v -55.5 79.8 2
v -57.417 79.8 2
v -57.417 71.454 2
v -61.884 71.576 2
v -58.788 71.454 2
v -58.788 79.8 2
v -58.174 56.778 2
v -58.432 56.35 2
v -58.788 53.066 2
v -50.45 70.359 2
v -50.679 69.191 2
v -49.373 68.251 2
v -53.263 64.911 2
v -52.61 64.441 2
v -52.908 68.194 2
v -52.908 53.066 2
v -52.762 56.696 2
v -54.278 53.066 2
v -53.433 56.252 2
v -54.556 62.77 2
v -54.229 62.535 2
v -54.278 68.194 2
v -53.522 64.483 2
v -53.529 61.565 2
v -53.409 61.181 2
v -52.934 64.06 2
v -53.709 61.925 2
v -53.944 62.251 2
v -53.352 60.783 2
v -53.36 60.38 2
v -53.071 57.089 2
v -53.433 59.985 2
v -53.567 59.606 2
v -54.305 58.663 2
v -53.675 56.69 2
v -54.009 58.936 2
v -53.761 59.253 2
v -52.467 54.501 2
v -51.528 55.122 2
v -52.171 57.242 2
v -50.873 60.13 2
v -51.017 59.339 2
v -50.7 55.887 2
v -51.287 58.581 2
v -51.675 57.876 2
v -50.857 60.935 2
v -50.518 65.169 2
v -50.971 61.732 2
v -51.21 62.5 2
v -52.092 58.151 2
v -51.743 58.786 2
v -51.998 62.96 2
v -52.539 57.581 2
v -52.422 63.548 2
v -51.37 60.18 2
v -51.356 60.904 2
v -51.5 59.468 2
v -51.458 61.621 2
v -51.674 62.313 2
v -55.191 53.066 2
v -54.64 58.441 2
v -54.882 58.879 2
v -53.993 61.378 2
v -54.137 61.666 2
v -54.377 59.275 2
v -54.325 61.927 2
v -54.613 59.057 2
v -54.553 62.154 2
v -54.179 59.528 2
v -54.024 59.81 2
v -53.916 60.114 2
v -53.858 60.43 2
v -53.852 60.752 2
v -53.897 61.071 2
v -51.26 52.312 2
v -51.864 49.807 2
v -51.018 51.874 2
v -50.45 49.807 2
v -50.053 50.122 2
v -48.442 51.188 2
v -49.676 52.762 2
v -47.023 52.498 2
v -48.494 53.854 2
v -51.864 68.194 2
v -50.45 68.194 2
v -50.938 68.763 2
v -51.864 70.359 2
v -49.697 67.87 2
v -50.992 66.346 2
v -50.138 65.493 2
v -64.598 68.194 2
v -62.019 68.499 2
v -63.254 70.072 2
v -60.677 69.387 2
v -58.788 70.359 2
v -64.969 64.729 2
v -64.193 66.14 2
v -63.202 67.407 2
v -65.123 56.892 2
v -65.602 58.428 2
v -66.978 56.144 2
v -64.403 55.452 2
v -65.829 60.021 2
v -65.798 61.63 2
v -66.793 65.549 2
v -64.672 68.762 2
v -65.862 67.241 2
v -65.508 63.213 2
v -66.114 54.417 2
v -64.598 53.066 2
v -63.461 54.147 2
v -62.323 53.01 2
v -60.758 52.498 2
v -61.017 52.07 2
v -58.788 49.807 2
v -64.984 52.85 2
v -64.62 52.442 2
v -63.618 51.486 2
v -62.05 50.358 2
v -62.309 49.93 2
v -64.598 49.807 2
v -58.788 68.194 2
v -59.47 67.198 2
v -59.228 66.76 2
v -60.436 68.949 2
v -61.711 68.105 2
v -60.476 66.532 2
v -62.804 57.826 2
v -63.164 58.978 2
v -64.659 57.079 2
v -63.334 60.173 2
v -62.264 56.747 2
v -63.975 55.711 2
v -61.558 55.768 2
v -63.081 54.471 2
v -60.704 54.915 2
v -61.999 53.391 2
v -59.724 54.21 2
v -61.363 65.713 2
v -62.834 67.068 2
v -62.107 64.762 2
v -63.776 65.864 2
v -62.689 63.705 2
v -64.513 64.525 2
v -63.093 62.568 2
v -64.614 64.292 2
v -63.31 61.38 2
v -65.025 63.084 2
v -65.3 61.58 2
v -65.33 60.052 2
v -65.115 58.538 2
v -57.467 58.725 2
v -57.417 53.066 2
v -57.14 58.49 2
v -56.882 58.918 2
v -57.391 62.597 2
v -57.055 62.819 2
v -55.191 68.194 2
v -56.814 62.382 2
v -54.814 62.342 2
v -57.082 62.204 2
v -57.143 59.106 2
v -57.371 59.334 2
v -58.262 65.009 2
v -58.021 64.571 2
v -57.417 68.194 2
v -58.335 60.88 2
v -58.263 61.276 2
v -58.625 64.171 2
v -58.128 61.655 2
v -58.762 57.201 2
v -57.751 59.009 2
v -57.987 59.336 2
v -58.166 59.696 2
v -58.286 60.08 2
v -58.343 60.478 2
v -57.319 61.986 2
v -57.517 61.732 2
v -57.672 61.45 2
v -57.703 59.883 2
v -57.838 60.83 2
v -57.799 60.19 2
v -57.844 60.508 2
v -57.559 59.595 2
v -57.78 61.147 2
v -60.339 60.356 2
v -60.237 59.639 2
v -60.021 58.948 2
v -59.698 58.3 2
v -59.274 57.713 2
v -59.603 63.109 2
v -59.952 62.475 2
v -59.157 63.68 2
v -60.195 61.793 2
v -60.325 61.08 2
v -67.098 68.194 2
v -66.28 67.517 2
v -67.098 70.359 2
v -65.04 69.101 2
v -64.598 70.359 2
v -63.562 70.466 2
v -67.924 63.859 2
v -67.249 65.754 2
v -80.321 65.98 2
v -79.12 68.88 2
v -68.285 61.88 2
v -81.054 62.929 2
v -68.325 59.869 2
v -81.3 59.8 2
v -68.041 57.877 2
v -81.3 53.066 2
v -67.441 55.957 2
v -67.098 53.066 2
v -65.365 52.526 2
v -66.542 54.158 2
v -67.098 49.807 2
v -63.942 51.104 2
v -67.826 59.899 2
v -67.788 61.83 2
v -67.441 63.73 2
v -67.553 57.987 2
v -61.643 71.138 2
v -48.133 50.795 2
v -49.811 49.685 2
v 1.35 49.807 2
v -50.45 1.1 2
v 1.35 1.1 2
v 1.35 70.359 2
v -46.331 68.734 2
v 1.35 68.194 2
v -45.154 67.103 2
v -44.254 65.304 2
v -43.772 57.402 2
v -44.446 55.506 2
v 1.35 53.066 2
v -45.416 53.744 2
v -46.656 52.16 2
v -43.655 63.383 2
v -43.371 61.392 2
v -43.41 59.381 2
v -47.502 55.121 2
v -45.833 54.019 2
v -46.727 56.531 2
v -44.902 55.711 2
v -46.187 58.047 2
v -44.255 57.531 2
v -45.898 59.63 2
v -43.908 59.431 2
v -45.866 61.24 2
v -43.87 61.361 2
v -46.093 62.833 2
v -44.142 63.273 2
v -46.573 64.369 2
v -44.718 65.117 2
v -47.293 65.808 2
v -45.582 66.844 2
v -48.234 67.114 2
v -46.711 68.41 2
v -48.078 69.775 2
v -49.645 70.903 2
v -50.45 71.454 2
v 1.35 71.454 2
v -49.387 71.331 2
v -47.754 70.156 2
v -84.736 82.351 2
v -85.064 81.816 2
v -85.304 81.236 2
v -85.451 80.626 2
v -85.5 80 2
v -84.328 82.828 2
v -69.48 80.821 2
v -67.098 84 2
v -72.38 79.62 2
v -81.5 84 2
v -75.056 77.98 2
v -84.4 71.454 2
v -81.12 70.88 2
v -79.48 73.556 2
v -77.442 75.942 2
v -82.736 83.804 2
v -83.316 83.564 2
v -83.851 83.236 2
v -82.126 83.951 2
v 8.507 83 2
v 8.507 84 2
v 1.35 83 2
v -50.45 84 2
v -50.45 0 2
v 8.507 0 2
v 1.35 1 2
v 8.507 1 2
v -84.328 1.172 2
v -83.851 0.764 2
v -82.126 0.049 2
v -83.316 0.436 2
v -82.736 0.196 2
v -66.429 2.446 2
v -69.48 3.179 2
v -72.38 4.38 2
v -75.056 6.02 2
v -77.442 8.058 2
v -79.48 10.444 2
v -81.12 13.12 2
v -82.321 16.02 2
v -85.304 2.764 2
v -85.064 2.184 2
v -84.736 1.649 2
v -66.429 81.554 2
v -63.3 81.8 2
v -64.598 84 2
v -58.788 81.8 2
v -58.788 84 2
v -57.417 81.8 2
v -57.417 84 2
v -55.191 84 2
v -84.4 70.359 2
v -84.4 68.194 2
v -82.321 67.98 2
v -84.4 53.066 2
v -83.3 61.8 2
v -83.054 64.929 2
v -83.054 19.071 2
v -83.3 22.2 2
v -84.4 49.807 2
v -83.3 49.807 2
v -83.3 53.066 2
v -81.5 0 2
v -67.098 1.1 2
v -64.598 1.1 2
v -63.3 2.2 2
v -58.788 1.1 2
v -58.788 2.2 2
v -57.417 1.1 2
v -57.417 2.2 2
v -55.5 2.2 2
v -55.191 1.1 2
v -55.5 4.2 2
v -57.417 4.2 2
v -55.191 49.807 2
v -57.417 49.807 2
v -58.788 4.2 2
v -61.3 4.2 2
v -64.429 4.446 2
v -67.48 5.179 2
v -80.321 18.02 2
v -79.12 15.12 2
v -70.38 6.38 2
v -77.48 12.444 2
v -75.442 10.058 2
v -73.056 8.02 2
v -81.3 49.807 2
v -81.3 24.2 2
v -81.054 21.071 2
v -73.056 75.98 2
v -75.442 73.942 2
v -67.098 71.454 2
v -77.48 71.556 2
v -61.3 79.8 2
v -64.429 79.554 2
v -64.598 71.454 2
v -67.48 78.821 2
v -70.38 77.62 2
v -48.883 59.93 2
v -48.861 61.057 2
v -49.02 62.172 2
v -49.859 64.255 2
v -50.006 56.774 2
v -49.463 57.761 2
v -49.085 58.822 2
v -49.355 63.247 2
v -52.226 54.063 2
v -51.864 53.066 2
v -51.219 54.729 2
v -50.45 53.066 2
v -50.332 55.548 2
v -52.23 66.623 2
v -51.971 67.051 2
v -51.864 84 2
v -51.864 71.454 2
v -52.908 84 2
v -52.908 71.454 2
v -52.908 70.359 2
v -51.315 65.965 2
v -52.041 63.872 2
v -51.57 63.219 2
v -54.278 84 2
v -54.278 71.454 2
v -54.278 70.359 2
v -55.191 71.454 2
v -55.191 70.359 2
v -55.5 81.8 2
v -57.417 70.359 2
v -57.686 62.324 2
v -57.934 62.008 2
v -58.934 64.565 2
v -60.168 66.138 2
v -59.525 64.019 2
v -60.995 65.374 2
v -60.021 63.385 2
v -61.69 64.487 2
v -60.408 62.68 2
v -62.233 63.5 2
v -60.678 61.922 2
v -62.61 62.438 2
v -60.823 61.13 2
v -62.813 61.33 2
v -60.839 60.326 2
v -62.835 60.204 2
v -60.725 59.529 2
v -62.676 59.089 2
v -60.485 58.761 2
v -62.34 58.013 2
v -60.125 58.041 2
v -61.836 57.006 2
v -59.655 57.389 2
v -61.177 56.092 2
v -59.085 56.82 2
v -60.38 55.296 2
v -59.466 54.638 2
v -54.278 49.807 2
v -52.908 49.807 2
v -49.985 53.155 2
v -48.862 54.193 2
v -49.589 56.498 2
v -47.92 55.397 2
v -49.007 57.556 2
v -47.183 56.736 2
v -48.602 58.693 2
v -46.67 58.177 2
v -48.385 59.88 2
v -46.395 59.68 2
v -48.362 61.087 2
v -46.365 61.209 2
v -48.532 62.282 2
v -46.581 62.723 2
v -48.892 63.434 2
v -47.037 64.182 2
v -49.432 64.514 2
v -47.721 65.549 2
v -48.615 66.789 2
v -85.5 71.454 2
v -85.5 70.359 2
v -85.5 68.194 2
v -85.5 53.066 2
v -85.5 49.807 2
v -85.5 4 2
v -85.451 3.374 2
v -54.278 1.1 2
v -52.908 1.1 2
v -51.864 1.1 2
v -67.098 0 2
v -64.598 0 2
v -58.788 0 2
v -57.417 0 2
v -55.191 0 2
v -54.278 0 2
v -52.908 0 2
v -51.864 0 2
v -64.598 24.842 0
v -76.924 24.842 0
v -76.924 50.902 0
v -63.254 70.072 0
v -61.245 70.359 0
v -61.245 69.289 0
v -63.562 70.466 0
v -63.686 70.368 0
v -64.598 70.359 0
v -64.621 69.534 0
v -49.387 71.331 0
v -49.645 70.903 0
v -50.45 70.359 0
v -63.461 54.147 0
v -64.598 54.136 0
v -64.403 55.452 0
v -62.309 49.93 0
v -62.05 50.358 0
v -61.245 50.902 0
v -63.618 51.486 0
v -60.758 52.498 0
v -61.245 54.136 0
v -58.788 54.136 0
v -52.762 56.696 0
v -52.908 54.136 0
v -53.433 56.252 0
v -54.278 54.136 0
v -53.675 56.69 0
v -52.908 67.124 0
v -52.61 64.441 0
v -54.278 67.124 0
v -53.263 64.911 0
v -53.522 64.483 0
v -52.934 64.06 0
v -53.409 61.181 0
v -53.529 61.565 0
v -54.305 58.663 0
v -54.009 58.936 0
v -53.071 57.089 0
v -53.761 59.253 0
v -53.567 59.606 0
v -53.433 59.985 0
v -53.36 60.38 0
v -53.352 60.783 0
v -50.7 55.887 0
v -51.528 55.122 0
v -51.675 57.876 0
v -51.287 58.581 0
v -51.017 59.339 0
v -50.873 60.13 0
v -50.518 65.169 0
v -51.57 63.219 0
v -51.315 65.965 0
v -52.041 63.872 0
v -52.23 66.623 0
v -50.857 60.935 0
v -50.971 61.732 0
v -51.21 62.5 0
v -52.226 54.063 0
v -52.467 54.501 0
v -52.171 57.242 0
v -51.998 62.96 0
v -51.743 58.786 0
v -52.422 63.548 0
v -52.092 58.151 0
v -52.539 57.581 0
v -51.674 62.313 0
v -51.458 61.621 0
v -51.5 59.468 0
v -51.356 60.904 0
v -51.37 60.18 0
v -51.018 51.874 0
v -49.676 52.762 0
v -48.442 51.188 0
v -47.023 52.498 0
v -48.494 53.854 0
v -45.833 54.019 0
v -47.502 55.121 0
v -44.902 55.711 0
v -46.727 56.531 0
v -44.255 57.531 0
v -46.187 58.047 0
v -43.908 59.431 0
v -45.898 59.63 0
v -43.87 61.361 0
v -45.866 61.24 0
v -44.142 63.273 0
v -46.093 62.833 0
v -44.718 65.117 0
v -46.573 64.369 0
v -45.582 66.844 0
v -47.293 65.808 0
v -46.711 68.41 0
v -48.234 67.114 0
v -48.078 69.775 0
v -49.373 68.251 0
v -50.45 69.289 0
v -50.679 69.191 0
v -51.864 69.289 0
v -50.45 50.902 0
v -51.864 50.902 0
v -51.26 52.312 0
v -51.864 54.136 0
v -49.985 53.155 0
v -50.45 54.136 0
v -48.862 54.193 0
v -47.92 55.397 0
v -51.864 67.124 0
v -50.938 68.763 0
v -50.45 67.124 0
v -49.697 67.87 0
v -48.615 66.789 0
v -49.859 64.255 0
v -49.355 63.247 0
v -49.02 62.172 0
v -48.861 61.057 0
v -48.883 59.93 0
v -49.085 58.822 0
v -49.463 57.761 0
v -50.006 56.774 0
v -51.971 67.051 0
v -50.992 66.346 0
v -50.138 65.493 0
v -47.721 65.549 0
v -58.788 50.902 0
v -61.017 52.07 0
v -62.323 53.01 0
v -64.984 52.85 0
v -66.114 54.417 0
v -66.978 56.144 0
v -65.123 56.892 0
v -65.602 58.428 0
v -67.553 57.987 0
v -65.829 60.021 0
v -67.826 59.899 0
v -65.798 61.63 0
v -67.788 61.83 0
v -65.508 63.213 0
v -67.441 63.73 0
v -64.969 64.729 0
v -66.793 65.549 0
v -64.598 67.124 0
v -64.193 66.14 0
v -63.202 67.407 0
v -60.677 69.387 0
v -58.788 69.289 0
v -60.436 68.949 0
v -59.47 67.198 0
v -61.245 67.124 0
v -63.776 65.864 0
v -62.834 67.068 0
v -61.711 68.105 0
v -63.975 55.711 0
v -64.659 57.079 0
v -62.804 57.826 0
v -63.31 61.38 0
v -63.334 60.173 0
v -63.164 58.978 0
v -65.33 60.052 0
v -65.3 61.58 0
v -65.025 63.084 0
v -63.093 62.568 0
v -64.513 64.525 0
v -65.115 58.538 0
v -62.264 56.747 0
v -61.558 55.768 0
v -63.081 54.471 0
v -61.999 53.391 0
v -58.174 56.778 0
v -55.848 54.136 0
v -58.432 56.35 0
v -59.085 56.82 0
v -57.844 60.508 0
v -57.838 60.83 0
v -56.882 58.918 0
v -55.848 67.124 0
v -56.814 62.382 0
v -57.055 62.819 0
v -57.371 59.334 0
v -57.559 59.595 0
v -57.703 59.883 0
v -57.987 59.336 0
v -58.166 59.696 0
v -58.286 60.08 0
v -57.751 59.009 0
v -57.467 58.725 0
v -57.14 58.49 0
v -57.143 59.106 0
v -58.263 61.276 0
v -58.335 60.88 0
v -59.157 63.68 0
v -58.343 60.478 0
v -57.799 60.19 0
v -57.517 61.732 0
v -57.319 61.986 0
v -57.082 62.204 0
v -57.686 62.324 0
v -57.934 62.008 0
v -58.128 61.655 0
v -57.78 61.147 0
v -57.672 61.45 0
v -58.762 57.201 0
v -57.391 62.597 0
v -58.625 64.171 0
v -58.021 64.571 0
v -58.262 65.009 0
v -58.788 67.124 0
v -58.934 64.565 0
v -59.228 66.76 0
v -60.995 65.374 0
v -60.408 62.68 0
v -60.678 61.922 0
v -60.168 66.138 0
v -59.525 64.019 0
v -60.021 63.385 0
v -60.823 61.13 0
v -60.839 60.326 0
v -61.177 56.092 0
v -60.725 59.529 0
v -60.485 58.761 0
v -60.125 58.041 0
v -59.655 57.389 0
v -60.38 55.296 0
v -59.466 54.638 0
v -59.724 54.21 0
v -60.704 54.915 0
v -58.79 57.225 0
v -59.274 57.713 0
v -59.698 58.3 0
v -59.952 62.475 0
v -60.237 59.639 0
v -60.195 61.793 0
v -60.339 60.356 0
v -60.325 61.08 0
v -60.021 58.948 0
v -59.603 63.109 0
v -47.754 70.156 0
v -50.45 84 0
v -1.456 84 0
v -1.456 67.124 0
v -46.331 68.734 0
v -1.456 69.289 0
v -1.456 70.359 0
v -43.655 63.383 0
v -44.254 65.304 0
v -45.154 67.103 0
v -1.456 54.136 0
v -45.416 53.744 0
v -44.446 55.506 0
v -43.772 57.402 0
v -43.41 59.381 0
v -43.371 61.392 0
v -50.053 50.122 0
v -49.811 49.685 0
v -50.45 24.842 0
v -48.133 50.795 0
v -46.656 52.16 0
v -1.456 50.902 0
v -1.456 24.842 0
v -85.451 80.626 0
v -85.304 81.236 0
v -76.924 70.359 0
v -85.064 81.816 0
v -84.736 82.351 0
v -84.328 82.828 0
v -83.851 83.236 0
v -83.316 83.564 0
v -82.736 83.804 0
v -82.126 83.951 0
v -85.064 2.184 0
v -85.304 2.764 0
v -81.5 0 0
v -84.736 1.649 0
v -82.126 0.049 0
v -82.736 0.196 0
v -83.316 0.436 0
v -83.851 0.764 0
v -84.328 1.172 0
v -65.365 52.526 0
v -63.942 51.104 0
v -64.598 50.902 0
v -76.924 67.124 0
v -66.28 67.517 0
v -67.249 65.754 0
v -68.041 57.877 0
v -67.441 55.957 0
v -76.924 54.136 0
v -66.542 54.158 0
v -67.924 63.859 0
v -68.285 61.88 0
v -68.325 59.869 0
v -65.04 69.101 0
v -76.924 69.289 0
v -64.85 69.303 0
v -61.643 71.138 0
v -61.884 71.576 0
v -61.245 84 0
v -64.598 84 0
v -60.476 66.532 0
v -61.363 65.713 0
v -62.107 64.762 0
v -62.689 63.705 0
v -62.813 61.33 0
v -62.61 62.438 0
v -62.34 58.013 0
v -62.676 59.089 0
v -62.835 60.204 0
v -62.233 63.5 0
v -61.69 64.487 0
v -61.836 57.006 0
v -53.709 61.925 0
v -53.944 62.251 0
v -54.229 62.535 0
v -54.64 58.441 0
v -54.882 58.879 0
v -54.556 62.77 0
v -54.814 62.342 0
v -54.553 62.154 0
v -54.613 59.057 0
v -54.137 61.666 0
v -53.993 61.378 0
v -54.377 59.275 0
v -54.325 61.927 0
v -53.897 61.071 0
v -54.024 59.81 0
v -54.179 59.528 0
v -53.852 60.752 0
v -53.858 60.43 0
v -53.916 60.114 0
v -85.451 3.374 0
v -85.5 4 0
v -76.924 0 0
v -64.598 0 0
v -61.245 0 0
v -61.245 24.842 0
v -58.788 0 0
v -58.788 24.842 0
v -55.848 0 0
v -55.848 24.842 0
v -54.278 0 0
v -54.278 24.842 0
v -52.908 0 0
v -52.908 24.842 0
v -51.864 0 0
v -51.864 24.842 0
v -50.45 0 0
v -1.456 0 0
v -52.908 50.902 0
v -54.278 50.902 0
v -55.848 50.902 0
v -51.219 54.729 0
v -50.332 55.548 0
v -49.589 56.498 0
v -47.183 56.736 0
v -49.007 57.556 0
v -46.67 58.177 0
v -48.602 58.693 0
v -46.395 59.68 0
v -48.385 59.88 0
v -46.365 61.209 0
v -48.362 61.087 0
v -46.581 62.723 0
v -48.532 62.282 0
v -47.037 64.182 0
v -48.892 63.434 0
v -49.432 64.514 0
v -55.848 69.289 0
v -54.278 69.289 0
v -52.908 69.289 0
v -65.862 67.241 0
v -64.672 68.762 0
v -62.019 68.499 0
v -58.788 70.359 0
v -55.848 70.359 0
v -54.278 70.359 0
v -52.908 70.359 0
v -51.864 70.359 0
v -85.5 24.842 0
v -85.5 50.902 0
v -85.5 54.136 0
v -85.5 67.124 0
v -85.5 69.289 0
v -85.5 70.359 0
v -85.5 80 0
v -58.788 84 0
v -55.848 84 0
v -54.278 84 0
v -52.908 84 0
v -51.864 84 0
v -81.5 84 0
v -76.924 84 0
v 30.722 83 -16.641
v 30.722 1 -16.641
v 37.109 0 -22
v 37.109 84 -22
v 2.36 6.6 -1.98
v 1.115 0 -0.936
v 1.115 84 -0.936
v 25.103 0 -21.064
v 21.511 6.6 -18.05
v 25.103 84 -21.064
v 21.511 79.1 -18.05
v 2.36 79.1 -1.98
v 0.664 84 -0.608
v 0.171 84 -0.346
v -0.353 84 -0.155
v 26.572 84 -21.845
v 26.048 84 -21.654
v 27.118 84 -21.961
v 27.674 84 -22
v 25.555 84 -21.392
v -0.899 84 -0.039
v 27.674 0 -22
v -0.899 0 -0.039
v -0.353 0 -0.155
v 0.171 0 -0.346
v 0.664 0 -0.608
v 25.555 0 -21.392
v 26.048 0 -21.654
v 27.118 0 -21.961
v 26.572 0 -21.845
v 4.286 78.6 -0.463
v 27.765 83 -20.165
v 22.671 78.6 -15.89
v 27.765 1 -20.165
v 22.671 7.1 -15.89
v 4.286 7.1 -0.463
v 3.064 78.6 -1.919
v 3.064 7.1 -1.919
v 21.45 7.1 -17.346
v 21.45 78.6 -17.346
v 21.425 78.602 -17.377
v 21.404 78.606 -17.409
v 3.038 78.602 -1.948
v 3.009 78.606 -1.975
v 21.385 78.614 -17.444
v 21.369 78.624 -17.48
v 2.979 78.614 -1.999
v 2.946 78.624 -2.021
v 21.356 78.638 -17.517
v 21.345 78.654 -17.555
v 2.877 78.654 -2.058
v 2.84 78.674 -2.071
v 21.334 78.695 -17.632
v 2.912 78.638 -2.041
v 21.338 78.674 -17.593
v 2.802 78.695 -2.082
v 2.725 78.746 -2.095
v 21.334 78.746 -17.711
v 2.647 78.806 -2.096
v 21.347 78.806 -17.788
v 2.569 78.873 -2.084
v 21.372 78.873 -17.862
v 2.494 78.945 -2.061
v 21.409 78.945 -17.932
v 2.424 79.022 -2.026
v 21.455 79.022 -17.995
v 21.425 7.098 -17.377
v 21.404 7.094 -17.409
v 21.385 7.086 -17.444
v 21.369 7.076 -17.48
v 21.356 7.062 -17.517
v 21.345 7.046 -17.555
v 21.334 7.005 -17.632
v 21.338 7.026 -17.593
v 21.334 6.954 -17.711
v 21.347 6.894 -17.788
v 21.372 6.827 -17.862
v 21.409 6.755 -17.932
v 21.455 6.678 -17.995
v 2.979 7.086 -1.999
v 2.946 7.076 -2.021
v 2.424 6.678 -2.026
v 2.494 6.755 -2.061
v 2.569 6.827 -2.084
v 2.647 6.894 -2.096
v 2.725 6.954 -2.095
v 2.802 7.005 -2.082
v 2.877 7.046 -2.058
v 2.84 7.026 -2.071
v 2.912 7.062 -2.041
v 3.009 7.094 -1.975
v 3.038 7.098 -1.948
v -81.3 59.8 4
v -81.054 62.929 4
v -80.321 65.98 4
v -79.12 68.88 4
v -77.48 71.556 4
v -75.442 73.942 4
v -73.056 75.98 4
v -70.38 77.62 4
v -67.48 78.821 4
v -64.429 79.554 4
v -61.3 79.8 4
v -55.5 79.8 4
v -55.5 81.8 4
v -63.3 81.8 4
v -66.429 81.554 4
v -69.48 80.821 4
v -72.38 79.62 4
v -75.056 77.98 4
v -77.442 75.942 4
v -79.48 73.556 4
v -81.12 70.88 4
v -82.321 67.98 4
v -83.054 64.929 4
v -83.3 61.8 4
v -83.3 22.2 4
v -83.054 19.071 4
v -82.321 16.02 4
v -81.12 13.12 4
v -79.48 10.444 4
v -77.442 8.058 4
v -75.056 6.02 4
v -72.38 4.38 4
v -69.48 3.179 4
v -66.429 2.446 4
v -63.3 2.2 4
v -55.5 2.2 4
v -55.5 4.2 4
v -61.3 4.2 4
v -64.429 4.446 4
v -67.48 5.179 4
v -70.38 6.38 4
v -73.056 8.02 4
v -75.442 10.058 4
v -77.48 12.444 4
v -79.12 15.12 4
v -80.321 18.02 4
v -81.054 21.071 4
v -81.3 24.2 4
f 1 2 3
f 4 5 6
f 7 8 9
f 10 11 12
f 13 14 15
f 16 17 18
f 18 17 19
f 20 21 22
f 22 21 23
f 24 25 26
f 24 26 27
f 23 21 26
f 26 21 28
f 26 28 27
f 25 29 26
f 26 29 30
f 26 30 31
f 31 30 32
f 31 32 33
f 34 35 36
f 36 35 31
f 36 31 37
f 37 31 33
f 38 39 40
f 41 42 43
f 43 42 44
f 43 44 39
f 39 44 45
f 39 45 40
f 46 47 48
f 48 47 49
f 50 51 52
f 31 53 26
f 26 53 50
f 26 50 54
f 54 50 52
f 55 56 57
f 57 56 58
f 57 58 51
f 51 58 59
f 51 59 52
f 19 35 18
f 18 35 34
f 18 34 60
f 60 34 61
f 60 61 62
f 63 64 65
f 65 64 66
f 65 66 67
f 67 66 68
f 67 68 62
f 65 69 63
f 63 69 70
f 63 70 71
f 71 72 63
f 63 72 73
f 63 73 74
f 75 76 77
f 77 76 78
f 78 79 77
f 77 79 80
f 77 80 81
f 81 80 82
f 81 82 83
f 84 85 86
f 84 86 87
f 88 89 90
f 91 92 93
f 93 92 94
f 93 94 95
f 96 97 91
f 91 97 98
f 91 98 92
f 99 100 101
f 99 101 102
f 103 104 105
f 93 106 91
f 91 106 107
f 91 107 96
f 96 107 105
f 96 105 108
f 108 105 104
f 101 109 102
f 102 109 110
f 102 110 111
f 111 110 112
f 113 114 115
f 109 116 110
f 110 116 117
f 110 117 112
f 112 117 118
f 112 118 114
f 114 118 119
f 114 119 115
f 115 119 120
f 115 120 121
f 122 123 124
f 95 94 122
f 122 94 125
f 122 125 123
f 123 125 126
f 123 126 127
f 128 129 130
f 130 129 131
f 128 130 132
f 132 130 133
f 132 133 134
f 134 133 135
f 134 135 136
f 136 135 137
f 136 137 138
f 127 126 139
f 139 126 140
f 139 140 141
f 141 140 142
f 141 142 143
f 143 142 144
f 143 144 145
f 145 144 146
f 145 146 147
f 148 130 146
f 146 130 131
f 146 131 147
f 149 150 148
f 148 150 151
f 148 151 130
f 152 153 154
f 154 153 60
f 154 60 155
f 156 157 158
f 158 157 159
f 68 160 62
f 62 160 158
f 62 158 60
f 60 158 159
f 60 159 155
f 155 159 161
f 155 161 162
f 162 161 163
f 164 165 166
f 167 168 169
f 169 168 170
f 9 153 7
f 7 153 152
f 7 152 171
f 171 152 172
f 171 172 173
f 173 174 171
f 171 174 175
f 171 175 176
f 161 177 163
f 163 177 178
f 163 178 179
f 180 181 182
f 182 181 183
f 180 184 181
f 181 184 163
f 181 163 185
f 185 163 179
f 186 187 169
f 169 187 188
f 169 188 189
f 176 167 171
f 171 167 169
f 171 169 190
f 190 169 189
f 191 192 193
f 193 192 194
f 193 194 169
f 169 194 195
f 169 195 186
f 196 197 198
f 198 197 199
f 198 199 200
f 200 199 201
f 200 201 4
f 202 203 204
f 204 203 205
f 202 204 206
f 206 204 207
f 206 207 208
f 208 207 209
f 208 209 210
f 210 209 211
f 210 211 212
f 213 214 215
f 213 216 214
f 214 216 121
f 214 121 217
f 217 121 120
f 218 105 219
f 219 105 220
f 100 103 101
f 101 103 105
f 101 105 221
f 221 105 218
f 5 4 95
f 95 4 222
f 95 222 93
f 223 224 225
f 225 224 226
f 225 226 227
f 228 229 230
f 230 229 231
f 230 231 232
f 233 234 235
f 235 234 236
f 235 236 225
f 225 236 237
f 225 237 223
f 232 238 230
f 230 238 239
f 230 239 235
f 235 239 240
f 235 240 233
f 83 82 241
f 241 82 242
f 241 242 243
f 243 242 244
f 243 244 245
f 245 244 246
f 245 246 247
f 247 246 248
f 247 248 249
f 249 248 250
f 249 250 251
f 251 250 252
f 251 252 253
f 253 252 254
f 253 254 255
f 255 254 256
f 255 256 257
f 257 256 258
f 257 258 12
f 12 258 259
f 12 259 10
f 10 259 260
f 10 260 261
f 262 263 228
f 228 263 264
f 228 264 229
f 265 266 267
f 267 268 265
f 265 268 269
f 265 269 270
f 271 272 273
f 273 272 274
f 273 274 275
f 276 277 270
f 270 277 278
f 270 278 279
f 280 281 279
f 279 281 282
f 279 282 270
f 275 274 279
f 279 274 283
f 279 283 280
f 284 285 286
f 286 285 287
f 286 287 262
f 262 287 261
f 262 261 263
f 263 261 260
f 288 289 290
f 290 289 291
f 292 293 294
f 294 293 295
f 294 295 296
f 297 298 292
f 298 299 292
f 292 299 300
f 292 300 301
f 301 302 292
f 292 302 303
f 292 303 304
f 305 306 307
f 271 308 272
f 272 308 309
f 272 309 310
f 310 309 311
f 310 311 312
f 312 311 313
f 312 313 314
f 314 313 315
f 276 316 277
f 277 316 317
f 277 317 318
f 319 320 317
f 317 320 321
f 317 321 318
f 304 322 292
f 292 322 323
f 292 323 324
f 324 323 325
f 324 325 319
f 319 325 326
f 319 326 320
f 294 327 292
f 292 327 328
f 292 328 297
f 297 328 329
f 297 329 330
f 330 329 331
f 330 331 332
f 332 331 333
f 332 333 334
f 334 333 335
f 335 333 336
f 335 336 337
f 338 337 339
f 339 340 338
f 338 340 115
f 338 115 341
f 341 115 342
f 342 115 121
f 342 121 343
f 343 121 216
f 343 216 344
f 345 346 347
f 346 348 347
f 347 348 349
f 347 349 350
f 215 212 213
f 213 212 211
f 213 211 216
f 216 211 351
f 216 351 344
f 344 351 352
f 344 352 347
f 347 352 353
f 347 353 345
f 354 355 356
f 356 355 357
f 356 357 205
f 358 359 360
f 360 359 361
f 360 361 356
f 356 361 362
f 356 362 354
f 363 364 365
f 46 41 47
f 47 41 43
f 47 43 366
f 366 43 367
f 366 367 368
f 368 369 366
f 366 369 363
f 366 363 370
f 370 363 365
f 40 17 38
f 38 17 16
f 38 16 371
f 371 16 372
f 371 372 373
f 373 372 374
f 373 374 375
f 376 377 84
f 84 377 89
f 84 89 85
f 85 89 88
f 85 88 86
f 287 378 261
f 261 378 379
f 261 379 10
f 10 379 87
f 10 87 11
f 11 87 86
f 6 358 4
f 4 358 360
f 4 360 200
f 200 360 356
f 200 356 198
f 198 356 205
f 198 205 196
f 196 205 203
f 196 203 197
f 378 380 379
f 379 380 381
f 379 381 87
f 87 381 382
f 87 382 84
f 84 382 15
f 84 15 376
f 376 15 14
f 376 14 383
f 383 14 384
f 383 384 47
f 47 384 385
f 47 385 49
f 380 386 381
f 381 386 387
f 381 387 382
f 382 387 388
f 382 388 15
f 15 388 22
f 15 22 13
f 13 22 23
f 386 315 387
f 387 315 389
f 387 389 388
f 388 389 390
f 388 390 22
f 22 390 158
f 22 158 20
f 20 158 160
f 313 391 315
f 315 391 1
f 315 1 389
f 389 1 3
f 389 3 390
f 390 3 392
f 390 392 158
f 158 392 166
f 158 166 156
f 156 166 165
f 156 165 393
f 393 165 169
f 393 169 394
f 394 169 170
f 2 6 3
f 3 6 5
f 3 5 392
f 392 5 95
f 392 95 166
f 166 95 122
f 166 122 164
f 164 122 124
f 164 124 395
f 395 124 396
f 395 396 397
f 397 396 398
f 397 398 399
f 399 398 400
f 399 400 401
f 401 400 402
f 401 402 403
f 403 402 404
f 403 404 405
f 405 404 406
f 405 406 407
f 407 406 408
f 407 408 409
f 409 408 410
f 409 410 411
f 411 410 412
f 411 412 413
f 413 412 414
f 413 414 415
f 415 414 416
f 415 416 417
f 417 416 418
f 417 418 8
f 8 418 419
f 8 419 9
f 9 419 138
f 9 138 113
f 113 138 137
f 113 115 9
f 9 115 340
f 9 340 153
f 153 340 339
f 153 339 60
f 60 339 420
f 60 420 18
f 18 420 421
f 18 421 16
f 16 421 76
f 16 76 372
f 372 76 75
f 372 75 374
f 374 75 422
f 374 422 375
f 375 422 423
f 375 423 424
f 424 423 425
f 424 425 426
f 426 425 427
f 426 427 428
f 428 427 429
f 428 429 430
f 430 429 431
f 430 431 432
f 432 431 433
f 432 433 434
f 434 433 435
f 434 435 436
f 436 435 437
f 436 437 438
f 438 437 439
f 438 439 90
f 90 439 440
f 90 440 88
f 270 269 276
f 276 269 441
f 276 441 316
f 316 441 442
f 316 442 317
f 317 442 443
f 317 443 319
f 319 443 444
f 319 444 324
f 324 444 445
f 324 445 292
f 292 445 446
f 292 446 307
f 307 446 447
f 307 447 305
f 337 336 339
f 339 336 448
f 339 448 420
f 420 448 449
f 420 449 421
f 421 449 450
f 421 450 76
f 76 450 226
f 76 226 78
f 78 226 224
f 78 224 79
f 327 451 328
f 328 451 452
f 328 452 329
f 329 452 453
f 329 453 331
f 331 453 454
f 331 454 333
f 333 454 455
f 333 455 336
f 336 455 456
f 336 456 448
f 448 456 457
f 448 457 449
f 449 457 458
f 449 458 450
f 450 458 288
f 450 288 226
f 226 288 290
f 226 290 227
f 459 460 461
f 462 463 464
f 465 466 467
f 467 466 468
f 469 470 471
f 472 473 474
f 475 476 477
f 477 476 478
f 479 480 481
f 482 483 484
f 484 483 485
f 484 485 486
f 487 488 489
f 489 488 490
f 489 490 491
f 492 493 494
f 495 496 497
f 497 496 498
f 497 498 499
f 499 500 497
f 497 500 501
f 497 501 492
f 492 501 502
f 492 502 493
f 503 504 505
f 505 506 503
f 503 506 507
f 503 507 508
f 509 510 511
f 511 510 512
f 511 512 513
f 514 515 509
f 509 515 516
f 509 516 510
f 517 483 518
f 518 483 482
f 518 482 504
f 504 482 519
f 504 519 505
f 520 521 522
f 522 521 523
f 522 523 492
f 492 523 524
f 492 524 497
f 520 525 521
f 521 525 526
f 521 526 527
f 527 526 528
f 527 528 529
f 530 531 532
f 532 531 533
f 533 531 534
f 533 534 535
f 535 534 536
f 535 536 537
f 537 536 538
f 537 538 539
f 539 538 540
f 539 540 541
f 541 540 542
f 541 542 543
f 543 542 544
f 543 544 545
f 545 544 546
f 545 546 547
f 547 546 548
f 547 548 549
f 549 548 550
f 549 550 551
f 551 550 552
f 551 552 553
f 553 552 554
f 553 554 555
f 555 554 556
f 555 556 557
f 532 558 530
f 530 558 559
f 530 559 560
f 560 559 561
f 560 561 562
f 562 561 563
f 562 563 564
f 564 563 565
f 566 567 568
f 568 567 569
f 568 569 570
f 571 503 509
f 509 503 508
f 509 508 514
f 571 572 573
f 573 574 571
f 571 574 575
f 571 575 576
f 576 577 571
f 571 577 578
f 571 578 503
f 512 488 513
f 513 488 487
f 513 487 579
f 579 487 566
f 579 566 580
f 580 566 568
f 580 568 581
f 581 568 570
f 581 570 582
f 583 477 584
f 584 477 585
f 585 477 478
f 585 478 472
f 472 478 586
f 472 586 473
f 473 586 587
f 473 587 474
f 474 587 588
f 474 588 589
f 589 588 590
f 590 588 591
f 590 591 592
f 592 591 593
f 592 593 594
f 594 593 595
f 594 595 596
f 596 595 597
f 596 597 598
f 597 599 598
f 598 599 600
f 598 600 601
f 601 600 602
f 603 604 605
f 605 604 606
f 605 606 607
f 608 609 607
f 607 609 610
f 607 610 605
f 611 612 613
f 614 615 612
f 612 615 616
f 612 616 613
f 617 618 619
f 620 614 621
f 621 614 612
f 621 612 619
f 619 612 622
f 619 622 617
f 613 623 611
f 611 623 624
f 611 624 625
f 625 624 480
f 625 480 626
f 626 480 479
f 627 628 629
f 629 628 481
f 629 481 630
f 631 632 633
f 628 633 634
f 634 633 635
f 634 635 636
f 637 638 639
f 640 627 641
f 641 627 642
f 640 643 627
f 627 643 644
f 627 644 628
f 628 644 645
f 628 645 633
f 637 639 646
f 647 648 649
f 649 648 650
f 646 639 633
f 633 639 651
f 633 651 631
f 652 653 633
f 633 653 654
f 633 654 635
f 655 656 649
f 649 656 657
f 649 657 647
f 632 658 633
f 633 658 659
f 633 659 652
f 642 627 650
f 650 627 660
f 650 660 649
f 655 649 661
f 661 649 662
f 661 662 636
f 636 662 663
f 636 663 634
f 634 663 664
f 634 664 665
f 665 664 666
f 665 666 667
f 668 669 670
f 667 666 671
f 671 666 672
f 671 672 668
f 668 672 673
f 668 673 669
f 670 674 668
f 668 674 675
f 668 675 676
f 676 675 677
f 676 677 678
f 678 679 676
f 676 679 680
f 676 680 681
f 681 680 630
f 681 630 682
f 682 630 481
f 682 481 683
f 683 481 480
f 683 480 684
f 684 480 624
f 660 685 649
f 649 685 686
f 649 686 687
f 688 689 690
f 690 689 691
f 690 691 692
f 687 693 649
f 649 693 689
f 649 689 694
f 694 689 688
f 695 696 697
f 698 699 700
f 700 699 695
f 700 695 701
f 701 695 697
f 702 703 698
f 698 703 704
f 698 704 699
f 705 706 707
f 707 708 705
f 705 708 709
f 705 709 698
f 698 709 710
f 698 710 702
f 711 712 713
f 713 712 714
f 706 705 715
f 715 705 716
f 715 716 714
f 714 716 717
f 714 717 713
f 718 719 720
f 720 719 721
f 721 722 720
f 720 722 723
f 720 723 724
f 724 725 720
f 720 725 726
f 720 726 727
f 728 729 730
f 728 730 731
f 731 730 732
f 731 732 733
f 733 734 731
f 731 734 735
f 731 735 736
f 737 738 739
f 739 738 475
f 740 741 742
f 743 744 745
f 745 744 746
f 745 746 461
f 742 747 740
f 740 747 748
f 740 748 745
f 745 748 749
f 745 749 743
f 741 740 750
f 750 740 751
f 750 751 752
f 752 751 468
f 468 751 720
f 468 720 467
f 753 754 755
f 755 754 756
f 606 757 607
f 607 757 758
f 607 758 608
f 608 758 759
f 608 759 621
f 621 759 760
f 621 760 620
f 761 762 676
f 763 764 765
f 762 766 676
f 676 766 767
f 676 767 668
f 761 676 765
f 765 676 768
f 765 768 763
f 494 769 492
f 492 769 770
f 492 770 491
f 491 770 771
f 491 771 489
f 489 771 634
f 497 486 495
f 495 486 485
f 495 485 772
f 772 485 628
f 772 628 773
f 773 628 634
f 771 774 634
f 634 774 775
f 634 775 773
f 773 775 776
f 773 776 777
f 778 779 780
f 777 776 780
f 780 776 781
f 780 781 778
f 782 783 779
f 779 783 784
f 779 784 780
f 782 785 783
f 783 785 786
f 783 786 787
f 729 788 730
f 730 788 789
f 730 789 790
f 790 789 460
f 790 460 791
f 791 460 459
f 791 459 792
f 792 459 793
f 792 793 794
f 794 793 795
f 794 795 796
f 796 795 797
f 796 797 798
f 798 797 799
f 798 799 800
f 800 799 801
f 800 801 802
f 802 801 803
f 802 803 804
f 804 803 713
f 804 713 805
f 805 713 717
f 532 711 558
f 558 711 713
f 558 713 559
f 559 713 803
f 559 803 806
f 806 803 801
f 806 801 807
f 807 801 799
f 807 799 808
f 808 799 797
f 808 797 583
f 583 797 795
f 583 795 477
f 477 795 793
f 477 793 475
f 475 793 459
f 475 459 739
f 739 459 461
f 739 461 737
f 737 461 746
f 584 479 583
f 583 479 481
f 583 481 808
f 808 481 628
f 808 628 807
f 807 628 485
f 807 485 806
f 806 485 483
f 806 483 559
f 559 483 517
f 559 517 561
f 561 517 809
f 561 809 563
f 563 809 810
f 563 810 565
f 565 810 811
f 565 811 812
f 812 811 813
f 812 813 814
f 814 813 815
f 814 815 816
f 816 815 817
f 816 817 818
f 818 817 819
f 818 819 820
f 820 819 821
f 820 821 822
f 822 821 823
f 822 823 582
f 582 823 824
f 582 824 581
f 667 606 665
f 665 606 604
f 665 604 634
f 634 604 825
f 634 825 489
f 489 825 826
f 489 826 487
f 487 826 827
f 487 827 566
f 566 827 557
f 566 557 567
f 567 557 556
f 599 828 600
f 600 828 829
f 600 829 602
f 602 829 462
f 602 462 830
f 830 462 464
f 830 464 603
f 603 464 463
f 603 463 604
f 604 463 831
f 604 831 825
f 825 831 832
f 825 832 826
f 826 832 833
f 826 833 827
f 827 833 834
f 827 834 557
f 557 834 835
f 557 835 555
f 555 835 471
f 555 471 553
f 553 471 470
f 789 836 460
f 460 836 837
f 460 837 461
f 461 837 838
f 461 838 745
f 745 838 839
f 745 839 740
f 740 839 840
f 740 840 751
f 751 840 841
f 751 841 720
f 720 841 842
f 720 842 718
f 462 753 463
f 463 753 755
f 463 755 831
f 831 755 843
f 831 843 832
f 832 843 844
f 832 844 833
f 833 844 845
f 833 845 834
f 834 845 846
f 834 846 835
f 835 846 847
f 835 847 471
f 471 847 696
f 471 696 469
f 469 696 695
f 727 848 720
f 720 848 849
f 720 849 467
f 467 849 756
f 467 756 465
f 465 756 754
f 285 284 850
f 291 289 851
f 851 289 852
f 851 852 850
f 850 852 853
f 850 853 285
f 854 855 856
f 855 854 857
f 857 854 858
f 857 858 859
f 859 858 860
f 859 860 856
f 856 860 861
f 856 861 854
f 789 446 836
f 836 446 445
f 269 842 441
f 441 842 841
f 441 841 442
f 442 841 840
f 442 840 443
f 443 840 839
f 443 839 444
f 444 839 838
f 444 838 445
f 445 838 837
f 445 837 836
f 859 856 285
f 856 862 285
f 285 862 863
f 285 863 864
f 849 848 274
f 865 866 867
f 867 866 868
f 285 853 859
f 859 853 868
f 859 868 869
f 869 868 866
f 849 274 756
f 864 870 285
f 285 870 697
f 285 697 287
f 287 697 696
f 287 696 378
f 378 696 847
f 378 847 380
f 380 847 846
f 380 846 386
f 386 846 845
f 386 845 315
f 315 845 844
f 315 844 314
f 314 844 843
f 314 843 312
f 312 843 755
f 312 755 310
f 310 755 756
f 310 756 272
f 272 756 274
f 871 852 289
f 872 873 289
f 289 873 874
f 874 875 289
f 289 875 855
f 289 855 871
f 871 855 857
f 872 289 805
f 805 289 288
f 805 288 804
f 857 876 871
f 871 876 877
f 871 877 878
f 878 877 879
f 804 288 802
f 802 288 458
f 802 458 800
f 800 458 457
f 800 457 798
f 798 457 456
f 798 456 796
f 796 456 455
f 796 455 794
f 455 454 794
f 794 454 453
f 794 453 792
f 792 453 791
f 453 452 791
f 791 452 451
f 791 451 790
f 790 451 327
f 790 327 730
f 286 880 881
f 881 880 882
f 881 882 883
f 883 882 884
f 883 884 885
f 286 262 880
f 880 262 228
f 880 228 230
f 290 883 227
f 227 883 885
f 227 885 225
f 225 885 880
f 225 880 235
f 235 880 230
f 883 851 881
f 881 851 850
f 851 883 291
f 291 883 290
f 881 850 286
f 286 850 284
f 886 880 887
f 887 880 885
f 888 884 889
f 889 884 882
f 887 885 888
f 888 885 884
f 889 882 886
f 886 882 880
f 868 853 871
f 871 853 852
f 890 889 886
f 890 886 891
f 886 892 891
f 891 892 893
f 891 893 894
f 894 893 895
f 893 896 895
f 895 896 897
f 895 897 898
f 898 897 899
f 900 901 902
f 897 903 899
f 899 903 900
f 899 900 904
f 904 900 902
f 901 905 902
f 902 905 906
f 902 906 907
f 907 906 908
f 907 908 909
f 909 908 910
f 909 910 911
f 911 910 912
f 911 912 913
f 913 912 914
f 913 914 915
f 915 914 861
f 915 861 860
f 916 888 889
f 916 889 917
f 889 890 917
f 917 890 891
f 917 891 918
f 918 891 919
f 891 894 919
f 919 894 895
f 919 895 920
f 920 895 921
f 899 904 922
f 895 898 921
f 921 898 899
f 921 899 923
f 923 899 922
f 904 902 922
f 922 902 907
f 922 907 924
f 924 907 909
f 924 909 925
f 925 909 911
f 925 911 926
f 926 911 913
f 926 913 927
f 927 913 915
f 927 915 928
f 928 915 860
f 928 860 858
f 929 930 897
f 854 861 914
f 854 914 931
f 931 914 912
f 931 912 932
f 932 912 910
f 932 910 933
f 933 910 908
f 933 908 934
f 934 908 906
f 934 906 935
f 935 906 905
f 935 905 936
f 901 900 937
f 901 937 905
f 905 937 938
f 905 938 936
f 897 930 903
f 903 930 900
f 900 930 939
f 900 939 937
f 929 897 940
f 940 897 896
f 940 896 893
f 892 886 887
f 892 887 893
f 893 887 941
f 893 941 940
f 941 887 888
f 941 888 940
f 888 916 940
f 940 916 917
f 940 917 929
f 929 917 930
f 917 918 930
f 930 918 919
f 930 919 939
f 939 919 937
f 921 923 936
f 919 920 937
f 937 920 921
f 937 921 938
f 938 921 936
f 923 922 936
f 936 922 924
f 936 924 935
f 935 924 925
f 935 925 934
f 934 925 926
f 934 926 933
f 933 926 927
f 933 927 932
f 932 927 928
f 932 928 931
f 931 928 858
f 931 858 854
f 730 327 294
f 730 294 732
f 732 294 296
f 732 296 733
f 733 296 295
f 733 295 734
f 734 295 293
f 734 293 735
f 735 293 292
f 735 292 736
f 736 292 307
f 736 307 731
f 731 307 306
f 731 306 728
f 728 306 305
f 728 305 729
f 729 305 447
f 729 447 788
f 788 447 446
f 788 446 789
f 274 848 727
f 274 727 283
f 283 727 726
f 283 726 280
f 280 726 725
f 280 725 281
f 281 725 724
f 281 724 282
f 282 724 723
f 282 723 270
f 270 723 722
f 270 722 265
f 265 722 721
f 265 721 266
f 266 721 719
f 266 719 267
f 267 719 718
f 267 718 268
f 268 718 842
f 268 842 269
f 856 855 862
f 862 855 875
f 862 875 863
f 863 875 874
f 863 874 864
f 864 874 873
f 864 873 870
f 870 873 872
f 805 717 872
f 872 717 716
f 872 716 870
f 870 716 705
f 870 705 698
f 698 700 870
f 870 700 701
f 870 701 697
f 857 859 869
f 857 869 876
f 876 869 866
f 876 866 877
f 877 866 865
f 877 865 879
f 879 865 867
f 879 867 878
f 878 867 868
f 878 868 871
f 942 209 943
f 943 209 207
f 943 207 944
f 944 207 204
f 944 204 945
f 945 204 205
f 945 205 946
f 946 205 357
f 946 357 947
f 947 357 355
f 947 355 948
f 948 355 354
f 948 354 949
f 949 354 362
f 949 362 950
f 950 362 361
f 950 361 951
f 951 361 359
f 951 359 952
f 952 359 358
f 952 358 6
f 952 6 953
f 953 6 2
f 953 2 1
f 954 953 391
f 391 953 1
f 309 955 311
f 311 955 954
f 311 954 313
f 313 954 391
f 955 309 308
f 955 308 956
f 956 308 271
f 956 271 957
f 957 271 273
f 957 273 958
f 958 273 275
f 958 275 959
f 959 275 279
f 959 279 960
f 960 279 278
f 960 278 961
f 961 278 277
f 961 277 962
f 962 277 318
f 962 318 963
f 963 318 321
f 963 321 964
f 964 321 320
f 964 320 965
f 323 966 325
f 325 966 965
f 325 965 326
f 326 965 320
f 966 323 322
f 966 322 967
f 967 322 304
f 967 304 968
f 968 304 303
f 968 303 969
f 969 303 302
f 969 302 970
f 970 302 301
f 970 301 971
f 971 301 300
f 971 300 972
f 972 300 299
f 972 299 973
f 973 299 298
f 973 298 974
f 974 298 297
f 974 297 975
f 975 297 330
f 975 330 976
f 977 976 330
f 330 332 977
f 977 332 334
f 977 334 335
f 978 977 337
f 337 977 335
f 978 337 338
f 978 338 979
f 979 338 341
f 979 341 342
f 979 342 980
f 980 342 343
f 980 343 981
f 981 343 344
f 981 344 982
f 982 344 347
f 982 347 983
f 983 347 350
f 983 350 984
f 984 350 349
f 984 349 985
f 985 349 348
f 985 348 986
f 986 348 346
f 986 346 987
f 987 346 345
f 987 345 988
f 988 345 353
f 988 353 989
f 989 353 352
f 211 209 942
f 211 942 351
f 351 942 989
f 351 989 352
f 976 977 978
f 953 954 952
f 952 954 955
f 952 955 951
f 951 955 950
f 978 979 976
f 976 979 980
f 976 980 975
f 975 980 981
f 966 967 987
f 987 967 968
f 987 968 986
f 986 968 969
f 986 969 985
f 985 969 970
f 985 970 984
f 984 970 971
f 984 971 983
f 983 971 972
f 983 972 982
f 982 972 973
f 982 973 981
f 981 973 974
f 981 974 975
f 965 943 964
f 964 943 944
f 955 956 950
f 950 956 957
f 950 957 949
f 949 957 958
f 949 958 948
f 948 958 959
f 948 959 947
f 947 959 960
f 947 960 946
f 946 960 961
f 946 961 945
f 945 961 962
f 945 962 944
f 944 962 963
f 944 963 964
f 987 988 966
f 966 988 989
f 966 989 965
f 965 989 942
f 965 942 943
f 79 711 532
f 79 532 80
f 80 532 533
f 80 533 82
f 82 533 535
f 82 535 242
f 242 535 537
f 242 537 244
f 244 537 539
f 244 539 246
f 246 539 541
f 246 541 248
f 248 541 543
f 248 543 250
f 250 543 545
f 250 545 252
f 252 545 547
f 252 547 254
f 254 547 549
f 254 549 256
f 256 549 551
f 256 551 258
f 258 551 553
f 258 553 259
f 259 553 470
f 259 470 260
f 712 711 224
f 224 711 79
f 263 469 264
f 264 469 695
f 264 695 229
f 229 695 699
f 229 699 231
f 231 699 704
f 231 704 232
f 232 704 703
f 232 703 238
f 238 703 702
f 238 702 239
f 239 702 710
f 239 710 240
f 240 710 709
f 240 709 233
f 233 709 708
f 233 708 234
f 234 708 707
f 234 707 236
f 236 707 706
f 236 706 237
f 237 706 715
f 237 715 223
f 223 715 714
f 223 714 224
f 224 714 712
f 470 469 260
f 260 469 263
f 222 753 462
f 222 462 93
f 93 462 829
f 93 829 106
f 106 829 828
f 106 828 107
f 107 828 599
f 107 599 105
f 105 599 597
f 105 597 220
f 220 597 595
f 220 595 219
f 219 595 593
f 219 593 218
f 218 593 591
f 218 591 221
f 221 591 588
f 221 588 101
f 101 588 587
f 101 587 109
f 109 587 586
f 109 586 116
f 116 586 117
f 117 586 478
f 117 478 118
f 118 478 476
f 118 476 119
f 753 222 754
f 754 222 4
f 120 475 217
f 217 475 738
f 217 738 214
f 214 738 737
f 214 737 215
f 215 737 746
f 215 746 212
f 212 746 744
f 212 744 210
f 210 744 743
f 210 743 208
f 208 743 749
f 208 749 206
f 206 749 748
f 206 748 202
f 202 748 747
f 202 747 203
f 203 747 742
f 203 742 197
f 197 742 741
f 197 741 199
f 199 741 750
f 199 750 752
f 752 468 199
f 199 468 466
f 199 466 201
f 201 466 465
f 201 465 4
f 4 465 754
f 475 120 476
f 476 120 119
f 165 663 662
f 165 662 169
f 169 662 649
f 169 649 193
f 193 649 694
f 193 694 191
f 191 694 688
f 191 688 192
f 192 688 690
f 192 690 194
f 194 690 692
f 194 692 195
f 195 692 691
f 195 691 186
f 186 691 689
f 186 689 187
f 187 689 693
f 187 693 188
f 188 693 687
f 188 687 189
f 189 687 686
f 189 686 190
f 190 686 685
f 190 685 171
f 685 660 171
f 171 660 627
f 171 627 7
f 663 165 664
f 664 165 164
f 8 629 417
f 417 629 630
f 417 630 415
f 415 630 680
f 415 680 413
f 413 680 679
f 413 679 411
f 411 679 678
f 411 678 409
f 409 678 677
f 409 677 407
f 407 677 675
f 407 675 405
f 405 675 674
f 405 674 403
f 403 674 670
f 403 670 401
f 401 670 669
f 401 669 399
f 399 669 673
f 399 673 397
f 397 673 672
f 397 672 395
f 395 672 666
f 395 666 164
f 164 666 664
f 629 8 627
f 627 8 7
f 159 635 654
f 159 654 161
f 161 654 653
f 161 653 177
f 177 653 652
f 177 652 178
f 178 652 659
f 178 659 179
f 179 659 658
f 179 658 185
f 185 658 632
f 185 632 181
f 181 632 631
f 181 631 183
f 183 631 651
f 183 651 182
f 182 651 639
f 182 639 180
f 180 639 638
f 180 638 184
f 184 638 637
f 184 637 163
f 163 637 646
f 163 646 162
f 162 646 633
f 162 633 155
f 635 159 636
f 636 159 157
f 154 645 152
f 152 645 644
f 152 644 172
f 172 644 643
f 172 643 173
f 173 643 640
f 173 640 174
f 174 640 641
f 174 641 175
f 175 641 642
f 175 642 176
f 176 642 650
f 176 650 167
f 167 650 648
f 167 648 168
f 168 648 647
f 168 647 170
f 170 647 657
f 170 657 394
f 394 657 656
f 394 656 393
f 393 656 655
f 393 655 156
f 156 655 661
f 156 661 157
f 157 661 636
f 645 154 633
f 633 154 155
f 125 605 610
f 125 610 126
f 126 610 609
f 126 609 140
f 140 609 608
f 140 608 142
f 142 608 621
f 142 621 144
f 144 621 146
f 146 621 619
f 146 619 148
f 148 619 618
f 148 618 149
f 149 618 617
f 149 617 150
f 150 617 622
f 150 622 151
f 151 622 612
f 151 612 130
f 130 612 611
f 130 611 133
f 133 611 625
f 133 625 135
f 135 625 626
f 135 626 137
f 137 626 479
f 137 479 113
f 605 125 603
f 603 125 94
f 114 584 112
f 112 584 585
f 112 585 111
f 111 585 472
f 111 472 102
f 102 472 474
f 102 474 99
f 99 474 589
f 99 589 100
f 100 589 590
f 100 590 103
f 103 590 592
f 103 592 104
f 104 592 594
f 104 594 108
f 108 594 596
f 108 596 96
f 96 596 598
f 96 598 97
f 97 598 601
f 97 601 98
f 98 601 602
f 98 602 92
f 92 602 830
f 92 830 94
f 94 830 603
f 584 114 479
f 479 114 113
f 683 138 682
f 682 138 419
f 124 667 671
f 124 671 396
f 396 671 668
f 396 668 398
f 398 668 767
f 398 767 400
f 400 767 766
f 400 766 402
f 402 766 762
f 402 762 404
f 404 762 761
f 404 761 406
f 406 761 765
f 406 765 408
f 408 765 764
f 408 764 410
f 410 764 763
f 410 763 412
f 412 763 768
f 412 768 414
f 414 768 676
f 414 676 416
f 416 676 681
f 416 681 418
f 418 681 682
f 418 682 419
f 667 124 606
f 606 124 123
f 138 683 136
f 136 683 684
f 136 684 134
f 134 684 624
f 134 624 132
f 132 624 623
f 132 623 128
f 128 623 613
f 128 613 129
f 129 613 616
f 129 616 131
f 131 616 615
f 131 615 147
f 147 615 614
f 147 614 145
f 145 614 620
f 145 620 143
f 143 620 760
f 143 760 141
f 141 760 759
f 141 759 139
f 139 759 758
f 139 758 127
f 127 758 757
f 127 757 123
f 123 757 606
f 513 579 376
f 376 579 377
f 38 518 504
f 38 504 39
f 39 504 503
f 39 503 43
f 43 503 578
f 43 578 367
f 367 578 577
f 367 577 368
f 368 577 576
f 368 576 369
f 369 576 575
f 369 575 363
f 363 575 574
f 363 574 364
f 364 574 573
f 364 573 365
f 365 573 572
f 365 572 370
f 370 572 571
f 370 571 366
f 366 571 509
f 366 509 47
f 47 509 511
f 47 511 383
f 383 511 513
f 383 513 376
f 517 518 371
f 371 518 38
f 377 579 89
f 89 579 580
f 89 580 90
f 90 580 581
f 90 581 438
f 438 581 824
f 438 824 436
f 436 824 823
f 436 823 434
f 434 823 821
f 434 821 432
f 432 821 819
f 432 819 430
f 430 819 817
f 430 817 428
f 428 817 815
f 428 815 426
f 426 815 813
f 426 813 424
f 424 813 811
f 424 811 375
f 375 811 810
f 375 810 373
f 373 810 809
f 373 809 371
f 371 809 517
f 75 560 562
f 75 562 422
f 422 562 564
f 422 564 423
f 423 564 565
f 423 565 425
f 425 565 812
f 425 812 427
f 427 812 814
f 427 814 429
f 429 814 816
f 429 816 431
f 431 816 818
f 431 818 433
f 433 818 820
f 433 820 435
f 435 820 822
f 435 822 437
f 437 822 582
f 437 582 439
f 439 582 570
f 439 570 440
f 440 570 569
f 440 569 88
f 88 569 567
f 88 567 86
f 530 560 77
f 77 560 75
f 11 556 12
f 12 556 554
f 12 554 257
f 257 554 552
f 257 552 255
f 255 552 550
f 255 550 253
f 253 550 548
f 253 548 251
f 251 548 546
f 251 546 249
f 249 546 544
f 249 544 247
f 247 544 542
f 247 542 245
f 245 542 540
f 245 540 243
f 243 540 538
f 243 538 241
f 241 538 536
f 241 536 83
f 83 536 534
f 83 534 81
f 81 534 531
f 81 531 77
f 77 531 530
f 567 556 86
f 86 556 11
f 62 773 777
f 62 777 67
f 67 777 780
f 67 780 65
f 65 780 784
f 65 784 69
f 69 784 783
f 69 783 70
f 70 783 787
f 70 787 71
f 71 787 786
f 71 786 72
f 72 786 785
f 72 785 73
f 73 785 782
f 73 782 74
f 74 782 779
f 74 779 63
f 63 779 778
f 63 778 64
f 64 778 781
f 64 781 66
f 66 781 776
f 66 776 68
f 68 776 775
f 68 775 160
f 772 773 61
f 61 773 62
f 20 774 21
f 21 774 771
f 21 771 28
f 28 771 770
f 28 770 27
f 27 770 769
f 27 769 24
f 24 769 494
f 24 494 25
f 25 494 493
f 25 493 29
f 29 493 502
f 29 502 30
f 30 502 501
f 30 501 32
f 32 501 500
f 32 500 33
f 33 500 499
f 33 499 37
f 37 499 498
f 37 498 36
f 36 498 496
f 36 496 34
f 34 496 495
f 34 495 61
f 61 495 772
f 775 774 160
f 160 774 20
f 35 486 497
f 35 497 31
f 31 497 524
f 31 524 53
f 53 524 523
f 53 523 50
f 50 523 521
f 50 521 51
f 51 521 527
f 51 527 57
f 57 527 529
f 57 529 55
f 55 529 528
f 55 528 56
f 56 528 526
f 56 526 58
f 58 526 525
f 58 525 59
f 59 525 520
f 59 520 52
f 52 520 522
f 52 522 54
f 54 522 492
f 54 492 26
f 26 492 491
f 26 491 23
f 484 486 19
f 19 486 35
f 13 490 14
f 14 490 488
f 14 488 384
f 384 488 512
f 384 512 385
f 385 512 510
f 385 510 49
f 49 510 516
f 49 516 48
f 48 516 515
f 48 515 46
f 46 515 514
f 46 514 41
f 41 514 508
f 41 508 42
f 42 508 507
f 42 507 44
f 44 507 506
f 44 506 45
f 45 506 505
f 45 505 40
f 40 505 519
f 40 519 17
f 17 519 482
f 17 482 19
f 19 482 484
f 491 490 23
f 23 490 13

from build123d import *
from OCP.BRepFilletAPI import BRepFilletAPI_MakeFillet

# Parameters (mm, degrees)
BOSS_EXTRUDE1_DEPTH = 84
CUT_EXTRUDE2_START  = -1
CUT_EXTRUDE2_DEPTH  = 82
CUT_EXTRUDE3_START  = 4.4
CUT_EXTRUDE3_DEPTH  = 71.5
CUT_EXTRUDE4_DEPTH  = 84
FILLET2_R1          = 4
FILLET2_R2          = 0.5
BOSS_EXTRUDE3_DEPTH = 2
CUT_EXTRUDE5_DEPTH  = 4


with BuildPart() as part:
    # Sketch1 → Boss-Extrude1 (new body)
    with BuildSketch(Plane(origin=(0, 0, 0), x_dir=(1, 0, 0), z_dir=(0, 1, 0))):
        Polygon((0, 0), (38.302222156, 32.139380484), (42.801735424, 26.777069382), (8.506559603, -2), (-85.5, -2), (-85.5, 0), align=None)
    extrude(amount=BOSS_EXTRUDE1_DEPTH)

    # Sketch5 → Cut-Extrude2 (cut)
    with BuildSketch(Plane(origin=(0, 84, 0), x_dir=(1, 0, 0), z_dir=(0, 1, 0)).offset(CUT_EXTRUDE2_START)):
        Polygon((8.506559603, -2), (30.721848453, 16.640840681), (27.765025449, 20.164645119), (1.350229999, -2), align=None)
    extrude(amount=-CUT_EXTRUDE2_DEPTH, mode=Mode.SUBTRACT)

    # Sketch7 → Cut-Extrude3 (cut)
    with BuildSketch(Plane.XZ.offset(-83).offset(CUT_EXTRUDE3_START)):
        Polygon((4.285763267, -0.463204882), (-0.306577305, -5.936143258), (18.078489329, -21.363045891), (22.670829902, -15.890107515), align=None)
    extrude(amount=CUT_EXTRUDE3_DEPTH, mode=Mode.SUBTRACT)

    # Sketch8 → Cut-Extrude4 (cut)
    with BuildSketch(Plane.XZ):
        Polygon((42.801735424, -26.777069382), (37.108645825, -22), (26.218579037, -22), (38.302222156, -32.139380484), align=None)
    extrude(amount=-CUT_EXTRUDE4_DEPTH, mode=Mode.SUBTRACT)

    # Fillet2: one fillet with a radius per group of edges: ONE call of the kernel's fillet builder (fillet() takes one radius for all edges)
    fillet2_edges_1 = [part.edges().sort_by_distance(p)[0] for p in [
        (0, 42, 0),
        (-85.5, 84, 1),
        (26.218579037, 42, -22),
        (-85.5, 0, 1),
    ]]
    fillet2_edges_2 = [part.edges().sort_by_distance(p)[0] for p in [
        (11.935606321, 7.1, -10.015162862),
        (2.743073004, 42.85, -2.301711546),
        (21.128139639, 42.85, -17.728614178),
        (11.935606321, 78.6, -10.015162862),
    ]]
    fillet2 = BRepFilletAPI_MakeFillet(part.part.solid().wrapped)
    for e in fillet2_edges_1:
        fillet2.Add(FILLET2_R1, e.wrapped)
    for e in fillet2_edges_2:
        fillet2.Add(FILLET2_R2, e.wrapped)
    add(Compound.cast(fillet2.Shape()), mode=Mode.REPLACE)

    # Sketch10 → Boss-Extrude3 (add)
    with BuildSketch(Plane.XY.offset(2)):
        with BuildLine():
            Line((-55.5, 79.8), (-55.5, 81.8))
            Line((-55.5, 81.8), (-63.3, 81.8))
            ThreePointArc((-63.3, 81.8), (-77.442135624, 75.942135624), (-83.3, 61.8))
            Line((-83.3, 61.8), (-83.3, 22.2))
            ThreePointArc((-83.3, 22.2), (-77.442135624, 8.057864376), (-63.3, 2.2))
            Line((-63.3, 2.2), (-55.5, 2.2))
            Line((-55.5, 2.2), (-55.5, 4.2))
            Line((-55.5, 4.2), (-61.3, 4.2))
            ThreePointArc((-61.3, 4.2), (-75.442135624, 10.057864376), (-81.3, 24.2))
            Line((-81.3, 24.2), (-81.3, 59.8))
            ThreePointArc((-81.3, 59.8), (-75.442135624, 73.942135624), (-61.3, 79.8))
            Line((-61.3, 79.8), (-55.5, 79.8))
        make_face()
    extrude(amount=BOSS_EXTRUDE3_DEPTH)

    # Sketch11 → Cut-Extrude5 (cut)
    with BuildSketch(Plane(origin=(0, 0, 0), x_dir=(-1, 0, 0), z_dir=(0, 0, -1))):
        with BuildLine():
            ThreePointArc((49.386884986, 71.331085509), (43.350190066, 60.385387064), (49.811095522, 49.684606686))
            Line((49.811095522, 49.684606686), (50.052563318, 50.122434624))
            ThreePointArc((50.052563318, 50.122434624), (43.850094081, 60.395183787), (49.645321205, 70.903054294))
            Line((49.645321205, 70.903054294), (49.386884986, 71.331085509))
        make_face()
        with BuildLine():
            Line((62.050259679, 50.357555968), (62.308695897, 49.929524753))
            ThreePointArc((62.308695897, 49.929524753), (68.345390817, 60.875223198), (61.884485362, 71.576003576))
            Line((61.884485362, 71.576003576), (61.643017565, 71.138175638))
            ThreePointArc((61.643017565, 71.138175638), (67.845486802, 60.865426475), (62.050259679, 50.357555968))
        make_face()
        with BuildLine():
            ThreePointArc((50.679066077, 69.190929433), (45.849710141, 60.434370678), (51.018434506, 51.873746375))
            Line((51.018434506, 51.873746375), (51.259902302, 52.311574313))
            ThreePointArc((51.259902302, 52.311574313), (46.349614156, 60.4441674), (50.937502296, 68.762898218))
            Line((50.937502296, 68.762898218), (50.679066077, 69.190929433))
        make_face()
        with BuildLine():
            Line((60.758078588, 52.497712044), (61.016514806, 52.069680829))
            ThreePointArc((61.016514806, 52.069680829), (65.845870742, 60.826239584), (60.677146378, 69.386863887))
            Line((60.677146378, 69.386863887), (60.435678581, 68.949035949))
            ThreePointArc((60.435678581, 68.949035949), (65.345966727, 60.816442862), (60.758078588, 52.497712044))
        make_face()
        with BuildLine():
            ThreePointArc((51.971247168, 67.050773358), (48.349230216, 60.483354291), (52.22577349, 54.062886064))
            Line((52.22577349, 54.062886064), (52.467241286, 54.500714002))
            ThreePointArc((52.467241286, 54.500714002), (48.849134231, 60.493151014), (52.229683387, 66.622742143))
            Line((52.229683387, 66.622742143), (51.971247168, 67.050773358))
        make_face()
        with BuildLine():
            Line((59.465897497, 54.637868119), (59.724333715, 54.209836904))
            ThreePointArc((59.724333715, 54.209836904), (63.346350667, 60.777255971), (59.469807394, 67.197724198))
            Line((59.469807394, 67.197724198), (59.228339597, 66.75989626))
            ThreePointArc((59.228339597, 66.75989626), (62.846446652, 60.767459248), (59.465897497, 54.637868119))
        make_face()
        with BuildLine():
            ThreePointArc((53.26342826, 64.910617282), (50.848750292, 60.532337904), (53.433112474, 56.252025753))
            Line((53.433112474, 56.252025753), (53.67458027, 56.689853691))
            ThreePointArc((53.67458027, 56.689853691), (51.348654307, 60.542134627), (53.521864478, 64.482586067))
            Line((53.521864478, 64.482586067), (53.26342826, 64.910617282))
        make_face()
        with BuildLine():
            Line((58.173716406, 56.778024195), (58.432152624, 56.34999298))
            ThreePointArc((58.432152624, 56.34999298), (60.846830592, 60.728272358), (58.26246841, 65.008584509))
            Line((58.26246841, 65.008584509), (58.021000613, 64.570756571))
            ThreePointArc((58.021000613, 64.570756571), (60.346926577, 60.718475635), (58.173716406, 56.778024195))
        make_face()
        with BuildLine():
            ThreePointArc((54.555609351, 62.770461207), (53.348270367, 60.581321518), (54.640451458, 58.441165442))
            Line((54.640451458, 58.441165442), (54.881919254, 58.87899338))
            ThreePointArc((54.881919254, 58.87899338), (53.848174382, 60.59111824), (54.814045569, 62.342429991))
            Line((54.814045569, 62.342429991), (54.555609351, 62.770461207))
        make_face()
        with BuildLine():
            Line((56.881535314, 58.91818027), (57.139971533, 58.490149055))
            ThreePointArc((57.139971533, 58.490149055), (58.347310517, 60.679288744), (57.055129426, 62.81944482))
            Line((57.055129426, 62.81944482), (56.813661629, 62.381616882))
            ThreePointArc((56.813661629, 62.381616882), (57.847406502, 60.669492022), (56.881535314, 58.91818027))
        make_face()
    extrude(amount=-CUT_EXTRUDE5_DEPTH, mode=Mode.SUBTRACT)


solid = part.part
